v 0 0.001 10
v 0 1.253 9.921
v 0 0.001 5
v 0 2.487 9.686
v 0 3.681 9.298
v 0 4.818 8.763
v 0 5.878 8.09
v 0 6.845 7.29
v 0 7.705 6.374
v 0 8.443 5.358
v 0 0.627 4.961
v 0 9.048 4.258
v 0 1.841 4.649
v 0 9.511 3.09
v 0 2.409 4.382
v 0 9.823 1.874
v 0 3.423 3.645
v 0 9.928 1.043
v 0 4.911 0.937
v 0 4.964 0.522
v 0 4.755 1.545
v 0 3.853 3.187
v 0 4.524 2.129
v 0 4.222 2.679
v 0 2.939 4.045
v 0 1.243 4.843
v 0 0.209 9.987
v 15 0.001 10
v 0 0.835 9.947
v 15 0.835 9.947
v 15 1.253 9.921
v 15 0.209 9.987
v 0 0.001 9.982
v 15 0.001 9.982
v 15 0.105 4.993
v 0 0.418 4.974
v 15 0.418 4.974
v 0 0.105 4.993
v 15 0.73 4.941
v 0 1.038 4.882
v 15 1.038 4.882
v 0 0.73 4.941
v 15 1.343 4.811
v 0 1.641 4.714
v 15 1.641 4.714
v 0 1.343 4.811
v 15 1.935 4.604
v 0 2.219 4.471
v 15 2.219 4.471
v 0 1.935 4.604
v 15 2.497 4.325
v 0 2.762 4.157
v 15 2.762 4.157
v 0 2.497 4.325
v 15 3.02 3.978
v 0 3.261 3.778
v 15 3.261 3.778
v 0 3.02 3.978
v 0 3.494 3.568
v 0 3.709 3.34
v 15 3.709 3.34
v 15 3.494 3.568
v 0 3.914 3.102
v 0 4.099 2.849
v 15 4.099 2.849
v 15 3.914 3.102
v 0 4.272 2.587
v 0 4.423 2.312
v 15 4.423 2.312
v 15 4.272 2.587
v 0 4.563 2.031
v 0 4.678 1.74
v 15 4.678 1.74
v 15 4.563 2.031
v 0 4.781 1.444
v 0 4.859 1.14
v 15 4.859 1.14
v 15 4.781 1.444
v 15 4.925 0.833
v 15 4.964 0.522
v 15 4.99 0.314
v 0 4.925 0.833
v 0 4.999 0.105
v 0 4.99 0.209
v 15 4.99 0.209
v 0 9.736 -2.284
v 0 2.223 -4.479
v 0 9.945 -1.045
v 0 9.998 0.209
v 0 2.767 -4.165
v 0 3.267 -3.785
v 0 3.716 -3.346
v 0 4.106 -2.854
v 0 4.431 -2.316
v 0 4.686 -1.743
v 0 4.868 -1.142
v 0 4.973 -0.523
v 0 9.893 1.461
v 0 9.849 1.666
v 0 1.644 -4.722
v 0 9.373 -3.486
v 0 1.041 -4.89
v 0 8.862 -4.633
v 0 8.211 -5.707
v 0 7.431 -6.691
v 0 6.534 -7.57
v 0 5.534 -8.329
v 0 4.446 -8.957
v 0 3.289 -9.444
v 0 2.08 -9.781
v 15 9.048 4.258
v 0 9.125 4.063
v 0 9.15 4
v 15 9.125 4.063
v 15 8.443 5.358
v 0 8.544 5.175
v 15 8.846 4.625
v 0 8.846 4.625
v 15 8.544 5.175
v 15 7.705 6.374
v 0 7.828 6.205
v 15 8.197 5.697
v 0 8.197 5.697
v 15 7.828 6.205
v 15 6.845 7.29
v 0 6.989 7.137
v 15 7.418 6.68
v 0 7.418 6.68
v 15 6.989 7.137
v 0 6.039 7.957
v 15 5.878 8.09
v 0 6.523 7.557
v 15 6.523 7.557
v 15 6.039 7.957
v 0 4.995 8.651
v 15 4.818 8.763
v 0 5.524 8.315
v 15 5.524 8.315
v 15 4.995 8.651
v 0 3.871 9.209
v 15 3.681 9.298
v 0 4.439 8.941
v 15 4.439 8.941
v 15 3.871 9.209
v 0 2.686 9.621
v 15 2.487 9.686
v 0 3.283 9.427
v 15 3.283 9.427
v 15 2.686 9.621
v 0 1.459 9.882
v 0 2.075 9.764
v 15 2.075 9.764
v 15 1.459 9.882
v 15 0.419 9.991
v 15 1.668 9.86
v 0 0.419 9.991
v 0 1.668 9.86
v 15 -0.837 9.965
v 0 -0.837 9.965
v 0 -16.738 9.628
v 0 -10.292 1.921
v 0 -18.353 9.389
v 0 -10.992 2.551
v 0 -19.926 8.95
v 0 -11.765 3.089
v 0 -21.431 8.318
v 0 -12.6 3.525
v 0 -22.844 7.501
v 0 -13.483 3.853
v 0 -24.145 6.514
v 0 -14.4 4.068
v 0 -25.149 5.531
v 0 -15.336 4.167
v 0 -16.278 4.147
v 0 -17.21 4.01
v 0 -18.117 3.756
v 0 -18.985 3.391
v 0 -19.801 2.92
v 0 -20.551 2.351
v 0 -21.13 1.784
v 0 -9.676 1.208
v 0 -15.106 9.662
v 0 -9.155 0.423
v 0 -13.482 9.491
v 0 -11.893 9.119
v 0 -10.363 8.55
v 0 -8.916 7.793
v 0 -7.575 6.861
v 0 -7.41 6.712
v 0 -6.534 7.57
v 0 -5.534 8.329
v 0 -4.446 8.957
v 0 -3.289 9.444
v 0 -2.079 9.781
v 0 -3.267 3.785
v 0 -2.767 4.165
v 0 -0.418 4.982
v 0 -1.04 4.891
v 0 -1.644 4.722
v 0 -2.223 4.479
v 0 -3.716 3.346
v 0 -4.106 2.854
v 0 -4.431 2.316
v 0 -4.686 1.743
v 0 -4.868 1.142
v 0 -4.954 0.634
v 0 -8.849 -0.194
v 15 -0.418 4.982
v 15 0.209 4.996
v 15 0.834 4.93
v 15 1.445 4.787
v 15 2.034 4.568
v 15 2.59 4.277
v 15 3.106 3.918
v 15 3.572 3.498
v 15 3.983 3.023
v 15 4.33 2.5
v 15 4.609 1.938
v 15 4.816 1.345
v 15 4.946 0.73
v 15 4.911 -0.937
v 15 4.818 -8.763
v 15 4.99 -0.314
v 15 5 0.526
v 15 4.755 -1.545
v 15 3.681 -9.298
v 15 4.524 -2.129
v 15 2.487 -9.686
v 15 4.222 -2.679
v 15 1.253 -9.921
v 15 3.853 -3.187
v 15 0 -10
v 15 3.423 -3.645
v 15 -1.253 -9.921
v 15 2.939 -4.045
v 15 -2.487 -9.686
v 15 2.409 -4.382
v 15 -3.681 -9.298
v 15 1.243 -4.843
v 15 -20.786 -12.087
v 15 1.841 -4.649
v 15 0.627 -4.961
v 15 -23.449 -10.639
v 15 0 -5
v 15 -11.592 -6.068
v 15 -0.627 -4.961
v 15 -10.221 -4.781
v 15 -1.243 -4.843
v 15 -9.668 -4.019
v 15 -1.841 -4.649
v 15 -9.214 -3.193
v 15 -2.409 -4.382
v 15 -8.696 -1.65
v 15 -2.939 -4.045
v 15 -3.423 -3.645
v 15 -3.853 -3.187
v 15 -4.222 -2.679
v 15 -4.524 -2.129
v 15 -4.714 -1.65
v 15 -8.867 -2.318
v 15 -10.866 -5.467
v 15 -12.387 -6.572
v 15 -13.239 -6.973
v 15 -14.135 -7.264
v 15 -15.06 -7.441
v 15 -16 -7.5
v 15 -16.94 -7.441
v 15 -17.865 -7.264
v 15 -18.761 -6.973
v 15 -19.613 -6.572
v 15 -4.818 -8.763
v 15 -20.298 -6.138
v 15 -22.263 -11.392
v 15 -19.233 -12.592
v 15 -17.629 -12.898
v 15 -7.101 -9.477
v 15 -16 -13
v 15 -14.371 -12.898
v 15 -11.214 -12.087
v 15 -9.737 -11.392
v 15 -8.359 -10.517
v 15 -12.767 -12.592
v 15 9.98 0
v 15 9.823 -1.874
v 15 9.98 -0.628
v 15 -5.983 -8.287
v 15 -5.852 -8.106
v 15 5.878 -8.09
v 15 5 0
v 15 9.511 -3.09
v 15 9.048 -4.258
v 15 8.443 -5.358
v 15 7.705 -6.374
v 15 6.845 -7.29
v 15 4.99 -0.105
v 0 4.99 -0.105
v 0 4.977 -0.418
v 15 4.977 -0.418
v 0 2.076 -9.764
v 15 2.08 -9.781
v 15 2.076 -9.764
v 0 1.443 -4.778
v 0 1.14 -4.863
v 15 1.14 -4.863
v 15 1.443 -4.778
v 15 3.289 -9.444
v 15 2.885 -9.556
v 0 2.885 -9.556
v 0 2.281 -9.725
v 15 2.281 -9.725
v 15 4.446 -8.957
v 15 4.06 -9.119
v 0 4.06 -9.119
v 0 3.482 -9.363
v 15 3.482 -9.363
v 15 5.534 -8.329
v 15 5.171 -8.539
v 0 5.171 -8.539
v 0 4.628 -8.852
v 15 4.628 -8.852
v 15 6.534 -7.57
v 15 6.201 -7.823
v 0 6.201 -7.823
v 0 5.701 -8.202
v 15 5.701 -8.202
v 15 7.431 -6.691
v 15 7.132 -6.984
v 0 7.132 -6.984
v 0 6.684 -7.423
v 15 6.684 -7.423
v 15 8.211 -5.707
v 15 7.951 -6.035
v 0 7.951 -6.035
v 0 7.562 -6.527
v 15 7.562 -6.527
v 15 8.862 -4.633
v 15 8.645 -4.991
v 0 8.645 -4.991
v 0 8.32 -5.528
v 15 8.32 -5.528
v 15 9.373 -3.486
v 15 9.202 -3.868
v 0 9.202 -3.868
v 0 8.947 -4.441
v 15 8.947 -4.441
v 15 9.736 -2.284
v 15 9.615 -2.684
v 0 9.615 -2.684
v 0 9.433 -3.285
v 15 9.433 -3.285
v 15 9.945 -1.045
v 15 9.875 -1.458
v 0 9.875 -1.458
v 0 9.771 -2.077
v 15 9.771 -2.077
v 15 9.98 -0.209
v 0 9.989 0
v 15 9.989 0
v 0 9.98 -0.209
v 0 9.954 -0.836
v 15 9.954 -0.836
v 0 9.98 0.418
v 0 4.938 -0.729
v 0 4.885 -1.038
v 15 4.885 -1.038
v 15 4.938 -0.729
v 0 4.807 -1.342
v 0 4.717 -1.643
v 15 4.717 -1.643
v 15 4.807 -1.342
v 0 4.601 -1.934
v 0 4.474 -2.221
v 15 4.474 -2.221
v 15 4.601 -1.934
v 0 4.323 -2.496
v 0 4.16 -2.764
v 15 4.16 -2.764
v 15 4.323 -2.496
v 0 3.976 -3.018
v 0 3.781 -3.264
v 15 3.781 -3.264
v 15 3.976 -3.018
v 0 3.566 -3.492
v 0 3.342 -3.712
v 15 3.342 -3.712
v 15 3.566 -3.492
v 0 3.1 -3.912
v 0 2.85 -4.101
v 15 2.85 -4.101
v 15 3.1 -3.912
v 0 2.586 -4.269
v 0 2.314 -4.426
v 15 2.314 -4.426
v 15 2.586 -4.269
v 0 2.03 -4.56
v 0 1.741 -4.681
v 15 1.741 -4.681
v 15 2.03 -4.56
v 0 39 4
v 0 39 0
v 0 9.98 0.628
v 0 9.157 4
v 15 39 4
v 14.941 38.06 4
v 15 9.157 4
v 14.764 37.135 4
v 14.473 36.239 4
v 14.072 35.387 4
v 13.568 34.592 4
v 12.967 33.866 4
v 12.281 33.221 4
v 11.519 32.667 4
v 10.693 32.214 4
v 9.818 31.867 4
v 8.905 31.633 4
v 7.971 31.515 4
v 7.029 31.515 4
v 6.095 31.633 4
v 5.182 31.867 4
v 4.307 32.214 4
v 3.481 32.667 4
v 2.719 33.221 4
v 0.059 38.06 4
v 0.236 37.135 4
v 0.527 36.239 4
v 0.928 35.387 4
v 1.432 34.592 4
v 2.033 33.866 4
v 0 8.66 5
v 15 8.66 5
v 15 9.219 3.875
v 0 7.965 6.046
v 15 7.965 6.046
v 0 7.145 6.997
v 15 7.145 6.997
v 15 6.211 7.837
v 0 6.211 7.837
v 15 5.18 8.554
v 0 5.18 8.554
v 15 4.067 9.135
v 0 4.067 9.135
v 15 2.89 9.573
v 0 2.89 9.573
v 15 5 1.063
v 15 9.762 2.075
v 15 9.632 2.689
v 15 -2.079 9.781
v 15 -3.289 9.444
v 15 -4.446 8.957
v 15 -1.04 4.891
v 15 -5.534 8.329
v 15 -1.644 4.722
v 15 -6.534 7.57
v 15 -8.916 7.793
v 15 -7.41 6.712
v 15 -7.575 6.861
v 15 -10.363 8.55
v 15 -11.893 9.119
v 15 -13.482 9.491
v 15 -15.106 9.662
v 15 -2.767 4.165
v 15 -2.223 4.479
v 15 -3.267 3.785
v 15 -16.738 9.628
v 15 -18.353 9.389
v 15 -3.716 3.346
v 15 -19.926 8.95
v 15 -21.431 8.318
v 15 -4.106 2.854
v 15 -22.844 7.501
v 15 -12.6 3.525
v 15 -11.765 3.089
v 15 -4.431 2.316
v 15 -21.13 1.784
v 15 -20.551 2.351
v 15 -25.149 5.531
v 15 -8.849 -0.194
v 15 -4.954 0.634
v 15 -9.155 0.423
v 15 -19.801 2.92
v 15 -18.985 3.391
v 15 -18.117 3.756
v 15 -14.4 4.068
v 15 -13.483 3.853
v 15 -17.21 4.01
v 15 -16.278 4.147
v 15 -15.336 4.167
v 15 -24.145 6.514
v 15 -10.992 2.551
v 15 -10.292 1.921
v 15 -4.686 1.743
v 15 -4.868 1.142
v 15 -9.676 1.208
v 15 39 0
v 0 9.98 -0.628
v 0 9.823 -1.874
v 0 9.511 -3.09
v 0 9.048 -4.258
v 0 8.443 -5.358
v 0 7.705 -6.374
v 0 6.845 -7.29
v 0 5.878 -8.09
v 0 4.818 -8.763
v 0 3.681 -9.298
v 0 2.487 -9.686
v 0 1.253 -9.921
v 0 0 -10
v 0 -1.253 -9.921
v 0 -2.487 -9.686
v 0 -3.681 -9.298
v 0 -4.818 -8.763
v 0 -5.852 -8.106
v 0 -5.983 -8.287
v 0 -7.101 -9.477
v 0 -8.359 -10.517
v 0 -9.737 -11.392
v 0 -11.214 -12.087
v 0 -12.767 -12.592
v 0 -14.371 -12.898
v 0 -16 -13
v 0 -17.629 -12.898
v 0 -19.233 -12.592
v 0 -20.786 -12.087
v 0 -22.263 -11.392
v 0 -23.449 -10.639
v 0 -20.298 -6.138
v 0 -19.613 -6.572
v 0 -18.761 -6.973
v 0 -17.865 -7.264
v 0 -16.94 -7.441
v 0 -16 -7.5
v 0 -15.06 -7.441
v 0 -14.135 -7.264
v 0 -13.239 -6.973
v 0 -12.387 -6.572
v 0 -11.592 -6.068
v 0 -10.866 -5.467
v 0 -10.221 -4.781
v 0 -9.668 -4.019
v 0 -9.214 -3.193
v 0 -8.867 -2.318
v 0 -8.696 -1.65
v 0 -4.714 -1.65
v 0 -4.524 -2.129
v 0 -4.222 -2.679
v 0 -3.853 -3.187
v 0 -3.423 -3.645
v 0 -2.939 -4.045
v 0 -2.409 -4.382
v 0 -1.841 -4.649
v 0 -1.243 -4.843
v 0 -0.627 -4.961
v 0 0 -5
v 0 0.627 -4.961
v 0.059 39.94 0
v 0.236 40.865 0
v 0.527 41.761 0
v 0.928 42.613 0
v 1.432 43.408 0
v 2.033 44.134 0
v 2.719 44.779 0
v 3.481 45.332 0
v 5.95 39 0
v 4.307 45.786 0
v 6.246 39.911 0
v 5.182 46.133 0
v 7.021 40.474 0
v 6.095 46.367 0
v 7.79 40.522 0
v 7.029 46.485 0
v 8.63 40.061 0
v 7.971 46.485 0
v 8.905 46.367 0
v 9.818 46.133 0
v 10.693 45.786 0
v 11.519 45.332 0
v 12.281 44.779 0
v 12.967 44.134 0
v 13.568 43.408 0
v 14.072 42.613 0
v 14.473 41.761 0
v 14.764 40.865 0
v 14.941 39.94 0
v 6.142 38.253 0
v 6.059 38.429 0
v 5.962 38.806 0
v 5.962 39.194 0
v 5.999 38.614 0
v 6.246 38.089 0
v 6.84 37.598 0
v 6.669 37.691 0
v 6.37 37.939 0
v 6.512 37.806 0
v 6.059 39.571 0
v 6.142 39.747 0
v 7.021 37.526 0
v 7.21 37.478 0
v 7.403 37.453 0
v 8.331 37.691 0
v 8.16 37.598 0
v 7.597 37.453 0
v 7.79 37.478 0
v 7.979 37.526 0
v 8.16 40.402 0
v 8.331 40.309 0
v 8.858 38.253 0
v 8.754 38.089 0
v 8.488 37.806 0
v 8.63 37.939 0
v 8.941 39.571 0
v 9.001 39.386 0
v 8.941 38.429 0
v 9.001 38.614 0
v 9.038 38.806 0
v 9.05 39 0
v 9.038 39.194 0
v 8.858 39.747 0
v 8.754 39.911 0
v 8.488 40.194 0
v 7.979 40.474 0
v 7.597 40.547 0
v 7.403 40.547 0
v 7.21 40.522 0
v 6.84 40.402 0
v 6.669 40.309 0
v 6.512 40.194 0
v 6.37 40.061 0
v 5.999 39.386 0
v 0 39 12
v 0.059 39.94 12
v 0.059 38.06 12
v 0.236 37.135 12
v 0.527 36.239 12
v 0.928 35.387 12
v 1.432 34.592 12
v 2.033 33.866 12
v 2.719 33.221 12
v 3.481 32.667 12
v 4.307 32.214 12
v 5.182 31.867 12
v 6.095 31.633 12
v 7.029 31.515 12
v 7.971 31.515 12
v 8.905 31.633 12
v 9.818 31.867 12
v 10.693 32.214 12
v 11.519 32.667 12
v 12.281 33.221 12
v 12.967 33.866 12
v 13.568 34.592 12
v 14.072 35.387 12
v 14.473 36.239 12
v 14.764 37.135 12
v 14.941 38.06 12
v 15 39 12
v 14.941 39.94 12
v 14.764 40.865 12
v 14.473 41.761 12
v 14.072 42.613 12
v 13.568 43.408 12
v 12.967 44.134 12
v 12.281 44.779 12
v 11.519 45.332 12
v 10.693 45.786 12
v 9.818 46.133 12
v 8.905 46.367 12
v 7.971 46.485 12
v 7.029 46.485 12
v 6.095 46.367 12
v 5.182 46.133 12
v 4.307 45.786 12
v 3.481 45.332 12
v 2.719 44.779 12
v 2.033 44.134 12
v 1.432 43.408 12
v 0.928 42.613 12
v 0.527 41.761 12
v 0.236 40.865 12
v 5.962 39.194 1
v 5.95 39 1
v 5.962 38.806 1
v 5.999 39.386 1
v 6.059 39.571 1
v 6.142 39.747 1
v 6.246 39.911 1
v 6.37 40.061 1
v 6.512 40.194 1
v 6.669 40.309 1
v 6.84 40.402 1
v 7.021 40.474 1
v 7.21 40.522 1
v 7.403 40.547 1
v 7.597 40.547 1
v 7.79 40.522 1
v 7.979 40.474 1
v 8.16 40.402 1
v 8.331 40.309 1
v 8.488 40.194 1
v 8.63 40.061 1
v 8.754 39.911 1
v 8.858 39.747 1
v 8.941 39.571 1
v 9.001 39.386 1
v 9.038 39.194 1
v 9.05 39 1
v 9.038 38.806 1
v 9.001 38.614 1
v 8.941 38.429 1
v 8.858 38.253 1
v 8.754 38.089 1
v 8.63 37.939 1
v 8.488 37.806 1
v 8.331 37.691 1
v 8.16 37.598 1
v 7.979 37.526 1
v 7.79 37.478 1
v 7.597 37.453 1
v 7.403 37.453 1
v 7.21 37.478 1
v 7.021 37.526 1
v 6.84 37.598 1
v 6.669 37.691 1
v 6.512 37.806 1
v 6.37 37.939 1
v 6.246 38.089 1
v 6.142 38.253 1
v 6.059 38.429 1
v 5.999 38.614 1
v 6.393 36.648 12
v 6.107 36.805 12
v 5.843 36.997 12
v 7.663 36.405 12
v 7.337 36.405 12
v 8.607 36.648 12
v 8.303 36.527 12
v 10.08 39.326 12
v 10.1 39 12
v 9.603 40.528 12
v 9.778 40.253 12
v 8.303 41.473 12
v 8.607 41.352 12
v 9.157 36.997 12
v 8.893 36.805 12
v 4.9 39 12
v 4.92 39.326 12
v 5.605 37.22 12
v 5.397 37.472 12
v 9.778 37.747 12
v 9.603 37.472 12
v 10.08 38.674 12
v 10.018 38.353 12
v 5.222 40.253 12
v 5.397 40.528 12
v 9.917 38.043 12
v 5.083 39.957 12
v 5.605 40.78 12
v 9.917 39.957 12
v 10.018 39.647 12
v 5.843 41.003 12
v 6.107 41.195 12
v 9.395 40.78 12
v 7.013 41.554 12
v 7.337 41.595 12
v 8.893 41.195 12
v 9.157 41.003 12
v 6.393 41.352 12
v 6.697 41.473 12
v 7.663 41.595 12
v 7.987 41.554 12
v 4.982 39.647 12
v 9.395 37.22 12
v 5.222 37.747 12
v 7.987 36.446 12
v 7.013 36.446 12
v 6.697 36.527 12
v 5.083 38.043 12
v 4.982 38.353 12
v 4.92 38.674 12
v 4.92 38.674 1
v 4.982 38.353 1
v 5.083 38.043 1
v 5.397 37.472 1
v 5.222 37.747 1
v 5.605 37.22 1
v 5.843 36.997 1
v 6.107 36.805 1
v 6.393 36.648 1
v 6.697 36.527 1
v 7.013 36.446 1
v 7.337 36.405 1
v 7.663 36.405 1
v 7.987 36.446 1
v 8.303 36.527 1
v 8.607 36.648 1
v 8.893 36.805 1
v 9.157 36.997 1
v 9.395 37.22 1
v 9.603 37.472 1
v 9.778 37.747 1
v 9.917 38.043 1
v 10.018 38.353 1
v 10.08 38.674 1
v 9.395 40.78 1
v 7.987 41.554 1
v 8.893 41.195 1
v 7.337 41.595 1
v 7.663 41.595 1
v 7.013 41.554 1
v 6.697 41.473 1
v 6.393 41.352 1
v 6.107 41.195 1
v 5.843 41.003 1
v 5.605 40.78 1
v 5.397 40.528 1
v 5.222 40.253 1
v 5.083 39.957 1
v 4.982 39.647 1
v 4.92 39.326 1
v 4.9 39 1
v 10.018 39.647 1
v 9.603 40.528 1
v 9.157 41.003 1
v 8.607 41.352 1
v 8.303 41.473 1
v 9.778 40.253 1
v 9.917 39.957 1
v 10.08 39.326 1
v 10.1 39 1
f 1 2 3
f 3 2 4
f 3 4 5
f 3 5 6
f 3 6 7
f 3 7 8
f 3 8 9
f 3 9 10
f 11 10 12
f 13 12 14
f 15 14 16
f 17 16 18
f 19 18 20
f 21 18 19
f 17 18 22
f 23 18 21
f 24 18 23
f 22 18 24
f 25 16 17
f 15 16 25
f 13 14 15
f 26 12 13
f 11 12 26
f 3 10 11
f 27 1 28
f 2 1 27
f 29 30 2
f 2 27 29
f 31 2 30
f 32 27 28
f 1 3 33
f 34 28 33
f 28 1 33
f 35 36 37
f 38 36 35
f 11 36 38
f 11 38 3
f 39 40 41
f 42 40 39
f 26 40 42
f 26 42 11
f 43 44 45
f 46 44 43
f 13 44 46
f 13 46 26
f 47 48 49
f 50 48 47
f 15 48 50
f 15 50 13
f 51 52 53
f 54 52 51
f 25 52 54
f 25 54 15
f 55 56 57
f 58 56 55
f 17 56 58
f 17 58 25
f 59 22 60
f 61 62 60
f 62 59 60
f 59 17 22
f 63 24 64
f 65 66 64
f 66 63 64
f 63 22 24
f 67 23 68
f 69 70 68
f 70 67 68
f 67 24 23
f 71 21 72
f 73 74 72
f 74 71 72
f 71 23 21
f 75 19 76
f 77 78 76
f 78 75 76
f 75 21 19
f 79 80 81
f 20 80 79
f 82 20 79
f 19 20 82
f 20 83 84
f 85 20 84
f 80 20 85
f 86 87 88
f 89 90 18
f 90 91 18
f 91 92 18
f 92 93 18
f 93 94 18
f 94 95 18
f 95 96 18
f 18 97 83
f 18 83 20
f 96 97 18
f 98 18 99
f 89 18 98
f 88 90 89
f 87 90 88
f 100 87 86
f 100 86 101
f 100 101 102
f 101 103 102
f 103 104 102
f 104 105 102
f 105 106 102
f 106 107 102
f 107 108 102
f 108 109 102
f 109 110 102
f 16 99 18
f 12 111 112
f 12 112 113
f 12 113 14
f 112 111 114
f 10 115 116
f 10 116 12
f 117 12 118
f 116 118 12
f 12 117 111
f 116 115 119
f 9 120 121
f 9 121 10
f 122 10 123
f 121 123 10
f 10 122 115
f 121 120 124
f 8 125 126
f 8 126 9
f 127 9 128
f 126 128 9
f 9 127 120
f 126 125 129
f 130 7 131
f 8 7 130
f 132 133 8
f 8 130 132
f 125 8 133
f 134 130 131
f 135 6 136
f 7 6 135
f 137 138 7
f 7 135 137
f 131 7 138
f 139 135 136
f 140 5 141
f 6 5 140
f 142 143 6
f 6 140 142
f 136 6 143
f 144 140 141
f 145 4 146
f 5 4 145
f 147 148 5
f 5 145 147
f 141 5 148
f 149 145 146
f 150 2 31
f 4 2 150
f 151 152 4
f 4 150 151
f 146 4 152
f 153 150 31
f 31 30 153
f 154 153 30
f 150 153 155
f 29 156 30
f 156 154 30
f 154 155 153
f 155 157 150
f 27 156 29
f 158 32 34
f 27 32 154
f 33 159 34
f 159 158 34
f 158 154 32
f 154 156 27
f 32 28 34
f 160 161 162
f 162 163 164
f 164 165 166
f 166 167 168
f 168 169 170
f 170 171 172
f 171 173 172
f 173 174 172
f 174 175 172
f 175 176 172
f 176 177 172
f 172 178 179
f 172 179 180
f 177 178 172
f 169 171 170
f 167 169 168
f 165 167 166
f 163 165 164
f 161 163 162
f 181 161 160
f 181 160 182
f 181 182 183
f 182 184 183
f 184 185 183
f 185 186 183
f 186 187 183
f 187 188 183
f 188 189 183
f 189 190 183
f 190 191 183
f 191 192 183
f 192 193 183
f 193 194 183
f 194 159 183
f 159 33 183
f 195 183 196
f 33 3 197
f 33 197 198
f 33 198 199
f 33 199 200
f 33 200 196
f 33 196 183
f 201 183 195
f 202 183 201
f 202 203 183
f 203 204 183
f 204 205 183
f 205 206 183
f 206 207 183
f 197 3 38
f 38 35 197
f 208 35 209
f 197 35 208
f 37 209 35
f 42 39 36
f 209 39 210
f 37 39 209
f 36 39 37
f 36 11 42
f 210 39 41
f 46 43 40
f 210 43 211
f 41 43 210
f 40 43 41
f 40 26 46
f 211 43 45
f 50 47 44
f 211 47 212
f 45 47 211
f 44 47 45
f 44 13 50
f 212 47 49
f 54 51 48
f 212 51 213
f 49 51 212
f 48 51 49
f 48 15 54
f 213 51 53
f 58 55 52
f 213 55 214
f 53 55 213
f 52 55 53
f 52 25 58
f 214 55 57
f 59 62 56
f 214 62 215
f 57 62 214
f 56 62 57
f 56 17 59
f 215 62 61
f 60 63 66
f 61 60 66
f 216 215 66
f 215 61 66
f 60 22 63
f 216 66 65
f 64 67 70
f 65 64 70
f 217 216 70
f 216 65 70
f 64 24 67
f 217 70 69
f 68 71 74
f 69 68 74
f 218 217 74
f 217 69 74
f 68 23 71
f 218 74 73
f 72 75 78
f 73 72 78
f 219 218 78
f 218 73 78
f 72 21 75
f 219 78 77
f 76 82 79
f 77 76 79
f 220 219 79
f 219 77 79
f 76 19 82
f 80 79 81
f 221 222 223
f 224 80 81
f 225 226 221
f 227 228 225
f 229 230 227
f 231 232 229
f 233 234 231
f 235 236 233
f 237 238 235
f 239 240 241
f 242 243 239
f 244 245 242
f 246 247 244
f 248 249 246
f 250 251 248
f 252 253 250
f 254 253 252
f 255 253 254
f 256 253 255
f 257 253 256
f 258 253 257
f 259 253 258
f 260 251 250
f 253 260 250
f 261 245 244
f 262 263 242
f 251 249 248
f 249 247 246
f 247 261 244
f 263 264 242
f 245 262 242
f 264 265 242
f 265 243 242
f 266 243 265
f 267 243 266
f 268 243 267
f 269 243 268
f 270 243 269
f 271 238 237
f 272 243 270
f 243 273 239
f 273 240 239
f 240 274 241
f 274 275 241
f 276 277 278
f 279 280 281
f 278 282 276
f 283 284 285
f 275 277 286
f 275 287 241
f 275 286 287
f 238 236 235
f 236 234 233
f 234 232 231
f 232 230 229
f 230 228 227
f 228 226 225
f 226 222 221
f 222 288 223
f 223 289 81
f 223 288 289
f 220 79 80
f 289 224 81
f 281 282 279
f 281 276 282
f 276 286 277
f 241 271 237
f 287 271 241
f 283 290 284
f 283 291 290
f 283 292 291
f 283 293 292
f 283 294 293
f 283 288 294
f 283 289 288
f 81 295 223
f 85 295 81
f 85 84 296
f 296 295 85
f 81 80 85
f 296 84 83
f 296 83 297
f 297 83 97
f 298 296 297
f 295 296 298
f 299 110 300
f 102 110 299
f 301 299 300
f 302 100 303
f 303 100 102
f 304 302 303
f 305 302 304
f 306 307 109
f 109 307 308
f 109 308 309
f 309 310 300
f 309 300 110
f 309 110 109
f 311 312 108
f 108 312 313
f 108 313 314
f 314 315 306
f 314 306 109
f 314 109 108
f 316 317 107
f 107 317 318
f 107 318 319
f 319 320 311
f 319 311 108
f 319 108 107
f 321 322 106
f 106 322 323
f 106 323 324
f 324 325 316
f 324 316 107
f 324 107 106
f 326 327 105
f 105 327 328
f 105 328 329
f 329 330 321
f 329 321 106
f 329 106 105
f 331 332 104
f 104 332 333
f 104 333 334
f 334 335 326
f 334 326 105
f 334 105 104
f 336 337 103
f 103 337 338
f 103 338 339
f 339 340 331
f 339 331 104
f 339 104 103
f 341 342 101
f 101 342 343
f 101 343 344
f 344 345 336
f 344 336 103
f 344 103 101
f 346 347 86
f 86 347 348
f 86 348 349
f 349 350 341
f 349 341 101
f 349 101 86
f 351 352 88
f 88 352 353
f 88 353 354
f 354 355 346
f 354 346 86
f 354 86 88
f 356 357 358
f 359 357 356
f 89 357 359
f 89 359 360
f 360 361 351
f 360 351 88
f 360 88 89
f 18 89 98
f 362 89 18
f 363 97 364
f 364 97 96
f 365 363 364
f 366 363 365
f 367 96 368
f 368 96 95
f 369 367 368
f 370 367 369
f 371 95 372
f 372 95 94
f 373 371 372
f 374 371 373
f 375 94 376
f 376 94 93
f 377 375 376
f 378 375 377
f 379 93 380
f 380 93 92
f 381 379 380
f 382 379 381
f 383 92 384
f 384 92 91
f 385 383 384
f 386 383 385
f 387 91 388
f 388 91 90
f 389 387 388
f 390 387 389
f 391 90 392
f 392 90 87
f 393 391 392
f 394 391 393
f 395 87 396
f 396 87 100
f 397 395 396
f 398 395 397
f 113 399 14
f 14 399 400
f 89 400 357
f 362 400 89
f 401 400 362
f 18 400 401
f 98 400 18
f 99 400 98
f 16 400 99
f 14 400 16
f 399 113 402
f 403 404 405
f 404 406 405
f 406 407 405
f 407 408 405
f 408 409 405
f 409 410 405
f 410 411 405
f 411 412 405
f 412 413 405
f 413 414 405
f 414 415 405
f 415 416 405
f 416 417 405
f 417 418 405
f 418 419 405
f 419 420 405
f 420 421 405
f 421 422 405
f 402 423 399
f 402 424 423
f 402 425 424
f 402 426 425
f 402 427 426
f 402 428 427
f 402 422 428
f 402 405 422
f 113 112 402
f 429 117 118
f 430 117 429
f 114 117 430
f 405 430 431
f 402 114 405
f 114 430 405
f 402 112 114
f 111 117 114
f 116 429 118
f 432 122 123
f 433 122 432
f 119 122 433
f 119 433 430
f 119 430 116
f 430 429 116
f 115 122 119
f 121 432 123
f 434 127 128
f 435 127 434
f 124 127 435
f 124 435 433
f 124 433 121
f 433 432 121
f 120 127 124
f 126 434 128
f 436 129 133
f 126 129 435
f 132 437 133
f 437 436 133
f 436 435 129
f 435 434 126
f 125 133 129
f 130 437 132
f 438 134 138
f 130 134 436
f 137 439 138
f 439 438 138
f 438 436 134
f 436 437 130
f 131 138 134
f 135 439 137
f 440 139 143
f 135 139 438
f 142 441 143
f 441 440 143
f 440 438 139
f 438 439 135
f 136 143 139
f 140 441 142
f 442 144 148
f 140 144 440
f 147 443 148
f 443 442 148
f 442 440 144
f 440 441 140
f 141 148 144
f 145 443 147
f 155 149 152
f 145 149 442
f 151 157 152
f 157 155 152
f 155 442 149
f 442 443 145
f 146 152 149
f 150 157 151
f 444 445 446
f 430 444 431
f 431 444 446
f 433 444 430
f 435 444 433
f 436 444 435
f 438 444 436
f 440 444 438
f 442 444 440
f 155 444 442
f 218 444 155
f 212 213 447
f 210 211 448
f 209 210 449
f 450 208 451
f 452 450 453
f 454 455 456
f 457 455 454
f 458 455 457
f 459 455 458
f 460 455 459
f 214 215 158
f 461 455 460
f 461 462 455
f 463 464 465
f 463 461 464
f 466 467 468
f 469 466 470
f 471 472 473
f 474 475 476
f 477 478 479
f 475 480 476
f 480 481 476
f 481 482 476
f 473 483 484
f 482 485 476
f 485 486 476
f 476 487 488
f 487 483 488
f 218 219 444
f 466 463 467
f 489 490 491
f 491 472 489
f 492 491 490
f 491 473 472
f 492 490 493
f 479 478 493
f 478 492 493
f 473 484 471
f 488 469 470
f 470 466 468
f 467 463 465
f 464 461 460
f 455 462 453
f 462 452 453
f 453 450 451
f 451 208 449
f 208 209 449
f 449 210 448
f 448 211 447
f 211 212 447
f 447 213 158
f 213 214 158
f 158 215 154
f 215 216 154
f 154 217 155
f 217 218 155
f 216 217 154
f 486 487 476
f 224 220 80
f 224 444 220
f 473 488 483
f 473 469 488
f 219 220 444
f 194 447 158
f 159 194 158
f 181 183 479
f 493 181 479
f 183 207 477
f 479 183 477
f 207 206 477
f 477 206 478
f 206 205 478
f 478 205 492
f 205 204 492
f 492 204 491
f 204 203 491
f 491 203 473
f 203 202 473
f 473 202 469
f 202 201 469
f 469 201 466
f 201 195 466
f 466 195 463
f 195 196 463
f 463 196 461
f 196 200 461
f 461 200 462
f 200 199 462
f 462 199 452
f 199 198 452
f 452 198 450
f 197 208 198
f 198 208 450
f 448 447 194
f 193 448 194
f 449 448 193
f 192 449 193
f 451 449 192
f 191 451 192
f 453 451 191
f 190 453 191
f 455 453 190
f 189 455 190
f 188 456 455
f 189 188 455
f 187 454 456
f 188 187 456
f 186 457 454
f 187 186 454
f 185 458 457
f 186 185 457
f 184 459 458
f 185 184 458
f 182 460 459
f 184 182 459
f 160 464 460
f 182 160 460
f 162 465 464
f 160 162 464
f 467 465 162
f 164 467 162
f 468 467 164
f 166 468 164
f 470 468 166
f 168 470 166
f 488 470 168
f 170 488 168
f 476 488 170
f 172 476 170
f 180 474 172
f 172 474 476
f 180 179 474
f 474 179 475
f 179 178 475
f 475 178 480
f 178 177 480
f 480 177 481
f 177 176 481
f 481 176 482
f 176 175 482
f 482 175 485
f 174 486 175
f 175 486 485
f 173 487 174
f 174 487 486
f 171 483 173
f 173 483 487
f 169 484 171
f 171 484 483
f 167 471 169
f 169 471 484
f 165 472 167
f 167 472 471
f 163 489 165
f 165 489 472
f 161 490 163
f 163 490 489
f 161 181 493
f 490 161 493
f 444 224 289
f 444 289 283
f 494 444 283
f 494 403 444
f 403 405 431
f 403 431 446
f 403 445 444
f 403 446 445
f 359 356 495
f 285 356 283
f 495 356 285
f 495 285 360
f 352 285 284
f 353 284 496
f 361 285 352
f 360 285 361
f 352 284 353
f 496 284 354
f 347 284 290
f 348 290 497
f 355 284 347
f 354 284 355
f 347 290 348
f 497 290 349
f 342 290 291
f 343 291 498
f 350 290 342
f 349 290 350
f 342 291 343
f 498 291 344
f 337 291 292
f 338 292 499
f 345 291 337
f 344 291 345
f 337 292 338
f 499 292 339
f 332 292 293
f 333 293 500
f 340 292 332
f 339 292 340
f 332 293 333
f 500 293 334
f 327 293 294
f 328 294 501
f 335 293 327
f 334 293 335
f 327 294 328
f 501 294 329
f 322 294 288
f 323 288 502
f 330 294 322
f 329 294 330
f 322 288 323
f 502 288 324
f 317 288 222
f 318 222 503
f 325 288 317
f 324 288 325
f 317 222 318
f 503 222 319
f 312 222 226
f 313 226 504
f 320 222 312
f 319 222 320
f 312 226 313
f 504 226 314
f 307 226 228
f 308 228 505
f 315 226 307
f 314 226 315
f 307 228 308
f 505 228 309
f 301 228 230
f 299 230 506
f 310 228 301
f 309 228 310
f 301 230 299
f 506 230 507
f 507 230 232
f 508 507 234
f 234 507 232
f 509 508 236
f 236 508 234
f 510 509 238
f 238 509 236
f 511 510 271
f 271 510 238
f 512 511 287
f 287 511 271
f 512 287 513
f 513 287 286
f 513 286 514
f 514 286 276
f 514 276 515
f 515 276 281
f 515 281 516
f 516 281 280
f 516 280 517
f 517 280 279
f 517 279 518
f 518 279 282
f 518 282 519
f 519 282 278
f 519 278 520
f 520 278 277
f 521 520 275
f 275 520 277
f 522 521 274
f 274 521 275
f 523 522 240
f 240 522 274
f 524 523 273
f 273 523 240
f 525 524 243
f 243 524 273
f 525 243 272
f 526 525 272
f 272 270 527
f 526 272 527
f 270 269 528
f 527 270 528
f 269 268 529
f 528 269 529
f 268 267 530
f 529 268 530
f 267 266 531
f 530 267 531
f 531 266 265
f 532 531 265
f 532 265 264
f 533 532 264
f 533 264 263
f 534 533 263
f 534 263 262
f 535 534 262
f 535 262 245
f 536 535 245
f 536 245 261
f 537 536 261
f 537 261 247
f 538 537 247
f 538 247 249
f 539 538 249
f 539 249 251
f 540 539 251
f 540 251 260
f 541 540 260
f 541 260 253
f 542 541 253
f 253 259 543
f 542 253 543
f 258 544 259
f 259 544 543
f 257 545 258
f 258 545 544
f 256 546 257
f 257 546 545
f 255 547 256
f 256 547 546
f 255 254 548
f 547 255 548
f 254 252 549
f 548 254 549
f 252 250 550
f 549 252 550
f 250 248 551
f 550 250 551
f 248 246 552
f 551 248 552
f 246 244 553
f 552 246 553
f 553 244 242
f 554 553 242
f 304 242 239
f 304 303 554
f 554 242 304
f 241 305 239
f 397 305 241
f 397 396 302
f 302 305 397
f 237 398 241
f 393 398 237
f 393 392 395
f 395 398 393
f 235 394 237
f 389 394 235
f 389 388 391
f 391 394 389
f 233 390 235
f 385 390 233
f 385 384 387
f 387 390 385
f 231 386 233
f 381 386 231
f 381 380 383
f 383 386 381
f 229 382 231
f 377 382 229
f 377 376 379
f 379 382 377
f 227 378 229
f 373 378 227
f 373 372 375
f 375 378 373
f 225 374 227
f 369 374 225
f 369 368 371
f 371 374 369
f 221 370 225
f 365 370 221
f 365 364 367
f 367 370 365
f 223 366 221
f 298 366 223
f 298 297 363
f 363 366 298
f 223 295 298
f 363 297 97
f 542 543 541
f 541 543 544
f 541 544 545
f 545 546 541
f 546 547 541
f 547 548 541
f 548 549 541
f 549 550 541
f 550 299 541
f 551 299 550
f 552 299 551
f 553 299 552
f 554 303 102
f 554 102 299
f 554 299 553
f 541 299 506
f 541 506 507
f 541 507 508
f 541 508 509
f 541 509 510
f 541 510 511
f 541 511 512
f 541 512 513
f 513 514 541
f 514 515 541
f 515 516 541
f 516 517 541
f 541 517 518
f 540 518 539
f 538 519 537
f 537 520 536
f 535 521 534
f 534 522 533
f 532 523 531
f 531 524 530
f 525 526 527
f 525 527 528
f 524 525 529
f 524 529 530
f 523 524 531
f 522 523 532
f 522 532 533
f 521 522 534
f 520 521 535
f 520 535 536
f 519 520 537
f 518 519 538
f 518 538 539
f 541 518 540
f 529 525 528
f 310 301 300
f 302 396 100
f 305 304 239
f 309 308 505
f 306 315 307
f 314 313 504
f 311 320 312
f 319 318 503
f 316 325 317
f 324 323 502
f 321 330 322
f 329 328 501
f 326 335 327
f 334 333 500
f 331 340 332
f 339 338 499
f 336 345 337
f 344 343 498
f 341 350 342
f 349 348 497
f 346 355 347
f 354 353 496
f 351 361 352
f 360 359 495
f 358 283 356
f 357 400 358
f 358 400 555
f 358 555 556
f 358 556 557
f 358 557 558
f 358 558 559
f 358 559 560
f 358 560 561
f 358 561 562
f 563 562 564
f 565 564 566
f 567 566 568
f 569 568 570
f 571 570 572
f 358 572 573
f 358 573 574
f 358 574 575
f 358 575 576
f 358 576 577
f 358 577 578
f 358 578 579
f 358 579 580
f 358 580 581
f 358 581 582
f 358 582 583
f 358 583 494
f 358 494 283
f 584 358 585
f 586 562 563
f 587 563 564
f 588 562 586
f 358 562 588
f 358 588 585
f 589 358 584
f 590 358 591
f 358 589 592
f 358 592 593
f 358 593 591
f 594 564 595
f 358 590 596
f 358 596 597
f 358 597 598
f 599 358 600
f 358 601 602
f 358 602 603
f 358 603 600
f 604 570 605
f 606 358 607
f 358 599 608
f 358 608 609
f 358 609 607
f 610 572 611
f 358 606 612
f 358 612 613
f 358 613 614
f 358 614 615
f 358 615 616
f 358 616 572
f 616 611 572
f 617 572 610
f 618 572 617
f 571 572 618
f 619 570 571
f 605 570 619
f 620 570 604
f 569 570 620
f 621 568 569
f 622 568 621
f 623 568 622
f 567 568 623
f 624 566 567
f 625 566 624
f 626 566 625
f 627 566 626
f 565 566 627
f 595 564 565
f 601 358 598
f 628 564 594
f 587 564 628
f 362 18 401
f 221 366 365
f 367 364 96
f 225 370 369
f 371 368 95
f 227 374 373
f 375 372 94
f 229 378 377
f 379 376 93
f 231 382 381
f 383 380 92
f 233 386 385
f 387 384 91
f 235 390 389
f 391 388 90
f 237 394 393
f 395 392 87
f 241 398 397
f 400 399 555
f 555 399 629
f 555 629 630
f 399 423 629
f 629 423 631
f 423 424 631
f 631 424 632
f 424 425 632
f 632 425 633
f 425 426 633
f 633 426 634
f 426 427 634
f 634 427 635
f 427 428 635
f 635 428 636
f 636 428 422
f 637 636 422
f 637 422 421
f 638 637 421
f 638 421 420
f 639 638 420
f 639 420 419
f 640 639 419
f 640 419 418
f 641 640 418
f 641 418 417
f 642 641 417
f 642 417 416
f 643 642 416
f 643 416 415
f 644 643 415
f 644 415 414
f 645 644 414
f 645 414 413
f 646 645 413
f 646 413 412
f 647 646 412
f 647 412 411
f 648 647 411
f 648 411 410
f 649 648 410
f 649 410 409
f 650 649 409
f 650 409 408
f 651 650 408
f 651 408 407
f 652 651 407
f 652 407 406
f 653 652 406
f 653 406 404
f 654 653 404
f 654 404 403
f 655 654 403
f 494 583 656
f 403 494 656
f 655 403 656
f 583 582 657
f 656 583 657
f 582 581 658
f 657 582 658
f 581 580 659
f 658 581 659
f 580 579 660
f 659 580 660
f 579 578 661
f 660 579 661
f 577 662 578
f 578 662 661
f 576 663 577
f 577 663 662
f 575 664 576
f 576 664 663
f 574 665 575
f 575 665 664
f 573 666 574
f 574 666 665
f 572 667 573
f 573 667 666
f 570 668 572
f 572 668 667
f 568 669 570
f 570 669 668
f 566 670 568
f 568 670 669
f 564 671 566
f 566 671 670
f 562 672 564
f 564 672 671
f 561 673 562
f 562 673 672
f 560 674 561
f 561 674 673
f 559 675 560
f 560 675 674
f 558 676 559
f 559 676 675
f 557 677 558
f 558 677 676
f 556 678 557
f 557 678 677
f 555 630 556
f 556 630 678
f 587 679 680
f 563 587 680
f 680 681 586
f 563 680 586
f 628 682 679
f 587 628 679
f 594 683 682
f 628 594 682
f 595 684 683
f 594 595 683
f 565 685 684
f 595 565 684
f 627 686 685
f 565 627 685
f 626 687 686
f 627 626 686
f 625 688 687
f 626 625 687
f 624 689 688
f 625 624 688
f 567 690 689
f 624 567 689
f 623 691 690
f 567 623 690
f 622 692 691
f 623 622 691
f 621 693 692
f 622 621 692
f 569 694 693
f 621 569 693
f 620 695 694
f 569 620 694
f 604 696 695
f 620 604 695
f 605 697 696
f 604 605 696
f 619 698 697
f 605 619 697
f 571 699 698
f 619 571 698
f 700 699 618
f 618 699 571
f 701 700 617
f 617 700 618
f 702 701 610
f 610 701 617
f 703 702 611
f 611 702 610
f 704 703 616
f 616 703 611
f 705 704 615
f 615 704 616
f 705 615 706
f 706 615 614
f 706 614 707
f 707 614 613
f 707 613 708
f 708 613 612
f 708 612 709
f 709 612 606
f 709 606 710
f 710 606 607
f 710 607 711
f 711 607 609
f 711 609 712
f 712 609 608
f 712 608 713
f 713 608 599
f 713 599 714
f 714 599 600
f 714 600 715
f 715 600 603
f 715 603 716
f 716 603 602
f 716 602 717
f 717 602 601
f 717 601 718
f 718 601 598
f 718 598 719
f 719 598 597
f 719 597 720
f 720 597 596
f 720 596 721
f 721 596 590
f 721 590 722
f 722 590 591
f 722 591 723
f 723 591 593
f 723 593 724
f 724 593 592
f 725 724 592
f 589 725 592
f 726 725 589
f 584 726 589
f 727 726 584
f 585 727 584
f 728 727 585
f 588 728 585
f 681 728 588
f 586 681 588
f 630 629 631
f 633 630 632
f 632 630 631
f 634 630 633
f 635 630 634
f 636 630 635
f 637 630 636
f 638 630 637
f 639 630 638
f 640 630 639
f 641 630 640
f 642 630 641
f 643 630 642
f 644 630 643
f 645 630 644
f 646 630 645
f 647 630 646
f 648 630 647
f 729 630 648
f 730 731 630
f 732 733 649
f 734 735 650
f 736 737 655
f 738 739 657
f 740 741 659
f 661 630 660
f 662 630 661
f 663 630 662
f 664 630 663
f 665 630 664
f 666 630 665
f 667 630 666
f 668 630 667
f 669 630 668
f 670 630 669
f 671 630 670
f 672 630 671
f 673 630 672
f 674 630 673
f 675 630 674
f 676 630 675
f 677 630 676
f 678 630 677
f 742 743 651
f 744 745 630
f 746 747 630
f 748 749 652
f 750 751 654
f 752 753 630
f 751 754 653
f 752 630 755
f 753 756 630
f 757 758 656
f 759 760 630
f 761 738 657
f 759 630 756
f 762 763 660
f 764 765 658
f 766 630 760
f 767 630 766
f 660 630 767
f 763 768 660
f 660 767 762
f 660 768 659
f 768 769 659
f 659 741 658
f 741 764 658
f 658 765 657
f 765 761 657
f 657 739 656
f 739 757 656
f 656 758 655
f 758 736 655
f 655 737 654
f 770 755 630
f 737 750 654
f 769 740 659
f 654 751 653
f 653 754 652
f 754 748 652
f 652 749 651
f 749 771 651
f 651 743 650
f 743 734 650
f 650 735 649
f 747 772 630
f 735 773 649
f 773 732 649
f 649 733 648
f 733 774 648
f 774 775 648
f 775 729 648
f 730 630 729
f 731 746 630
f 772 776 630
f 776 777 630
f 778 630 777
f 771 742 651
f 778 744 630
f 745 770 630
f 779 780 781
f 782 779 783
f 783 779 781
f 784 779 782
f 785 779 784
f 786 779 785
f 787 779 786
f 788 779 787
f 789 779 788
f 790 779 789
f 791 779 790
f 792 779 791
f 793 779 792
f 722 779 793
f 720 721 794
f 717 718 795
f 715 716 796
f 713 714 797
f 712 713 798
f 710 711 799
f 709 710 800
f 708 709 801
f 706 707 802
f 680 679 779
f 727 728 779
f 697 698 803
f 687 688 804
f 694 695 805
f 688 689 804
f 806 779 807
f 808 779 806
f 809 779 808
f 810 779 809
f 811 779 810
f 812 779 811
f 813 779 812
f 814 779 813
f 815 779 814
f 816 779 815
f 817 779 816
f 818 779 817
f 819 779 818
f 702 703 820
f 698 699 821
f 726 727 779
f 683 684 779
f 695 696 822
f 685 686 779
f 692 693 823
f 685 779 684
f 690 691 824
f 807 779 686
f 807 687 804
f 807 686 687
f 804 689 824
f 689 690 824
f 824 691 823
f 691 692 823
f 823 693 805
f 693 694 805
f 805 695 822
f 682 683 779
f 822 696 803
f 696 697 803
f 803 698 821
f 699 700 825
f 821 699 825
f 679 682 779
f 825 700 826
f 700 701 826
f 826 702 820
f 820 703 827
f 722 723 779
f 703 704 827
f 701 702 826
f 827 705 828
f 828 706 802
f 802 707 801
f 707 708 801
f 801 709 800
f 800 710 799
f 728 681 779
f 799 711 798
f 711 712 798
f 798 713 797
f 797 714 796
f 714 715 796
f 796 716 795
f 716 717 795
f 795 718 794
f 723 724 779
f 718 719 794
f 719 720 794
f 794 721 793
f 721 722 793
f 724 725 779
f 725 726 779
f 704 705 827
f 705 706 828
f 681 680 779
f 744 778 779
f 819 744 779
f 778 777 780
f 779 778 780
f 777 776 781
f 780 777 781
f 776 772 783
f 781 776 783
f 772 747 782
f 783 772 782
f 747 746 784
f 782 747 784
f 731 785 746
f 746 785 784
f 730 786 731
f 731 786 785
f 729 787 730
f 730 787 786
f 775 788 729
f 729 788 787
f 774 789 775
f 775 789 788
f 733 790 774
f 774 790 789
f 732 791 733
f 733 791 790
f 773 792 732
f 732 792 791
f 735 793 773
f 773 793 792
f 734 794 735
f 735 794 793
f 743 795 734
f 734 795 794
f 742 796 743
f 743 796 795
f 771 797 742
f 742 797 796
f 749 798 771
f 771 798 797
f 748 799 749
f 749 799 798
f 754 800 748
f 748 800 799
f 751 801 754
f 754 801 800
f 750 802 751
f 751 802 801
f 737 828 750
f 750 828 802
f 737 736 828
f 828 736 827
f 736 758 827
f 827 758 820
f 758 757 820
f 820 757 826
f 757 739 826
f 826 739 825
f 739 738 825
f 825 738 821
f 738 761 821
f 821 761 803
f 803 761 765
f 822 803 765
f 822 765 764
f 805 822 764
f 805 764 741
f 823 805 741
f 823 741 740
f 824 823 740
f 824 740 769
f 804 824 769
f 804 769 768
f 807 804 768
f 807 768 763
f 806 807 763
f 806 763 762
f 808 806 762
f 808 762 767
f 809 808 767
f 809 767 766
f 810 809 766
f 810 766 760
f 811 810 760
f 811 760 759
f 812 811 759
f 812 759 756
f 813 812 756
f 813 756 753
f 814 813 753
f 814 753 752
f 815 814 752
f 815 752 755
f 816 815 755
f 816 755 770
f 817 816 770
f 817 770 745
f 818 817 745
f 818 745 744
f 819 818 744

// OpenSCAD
l = 15;
b = 26;
h = 30;
sh= 3.3;
df = 5;
rf = 10;

ang = 12;

anga = 55;

bh = 60;

$fn = 50;

hs = 4;

rr = 15/2;
ra = 16;

fr = 3.1/2;
ffr = 5.2/2;
ffh = 1;
ffha = 12;

module halbfeder_r(l,b,h,rf,df,sh,ra)
{
	translate([0,-b,-h/2])
	difference(){
		union(){
			translate([0,b-ra,h/2]) rotate([0,90,0]) cylinder(r=b/2,h=l);
			translate([0,b,h/2]) rotate([0,90,0]) cylinder(r=rf,h=l);
		}
		translate([-1,-ra-1,h/2-sh/2]) #cube([l+2,ra+b+1.001,h+rf]);
		translate([-1,b,h/2]) rotate([0,90,0]) cylinder(r=rf-df,h=l+2);
	}
}



module halbrohrklipp(l,b,h,rf,df,sh,rr,ra,anga)
{
	difference(){
		halbfeder_r(l,b,h,rf,df,sh,ra);
		rotate([0,90,0]) translate([0,-ra,-1]) #cylinder(r=rr, h=l+2);
		translate([-1,-ra,0]) rotate([90+anga,0,0]) #cube([l+2,ra,ra]);
	}

}

module rohrklipp(l,b,h,rf,df,sh,ang,rr,ra,anga)
{
	halbrohrklipp(l,b,h,rf,df,sh,rr,ra,anga);
	rotate([ang,0,0]) mirror([0,0,1]) halbrohrklipp(l,b,h,rf,df,sh,rr,ra,anga);
}

	rohrklipp(l,b,h,rf,df,sh,ang,rr,ra,anga);

difference(){
	union(){
		translate([0,rf-df,0]) cube([l,bh-rf-ra,hs]);
		translate([l/2,bh-df-ra,0]) cylinder(r=l/2,h=ffha);
	}
	translate([l/2,bh-df-ra,-1]) #cylinder(r=fr,h=ffha+2);
	translate([l/2,bh-df-ra,ffh]) #cylinder(r=ffr,h=ffha+2);
}
